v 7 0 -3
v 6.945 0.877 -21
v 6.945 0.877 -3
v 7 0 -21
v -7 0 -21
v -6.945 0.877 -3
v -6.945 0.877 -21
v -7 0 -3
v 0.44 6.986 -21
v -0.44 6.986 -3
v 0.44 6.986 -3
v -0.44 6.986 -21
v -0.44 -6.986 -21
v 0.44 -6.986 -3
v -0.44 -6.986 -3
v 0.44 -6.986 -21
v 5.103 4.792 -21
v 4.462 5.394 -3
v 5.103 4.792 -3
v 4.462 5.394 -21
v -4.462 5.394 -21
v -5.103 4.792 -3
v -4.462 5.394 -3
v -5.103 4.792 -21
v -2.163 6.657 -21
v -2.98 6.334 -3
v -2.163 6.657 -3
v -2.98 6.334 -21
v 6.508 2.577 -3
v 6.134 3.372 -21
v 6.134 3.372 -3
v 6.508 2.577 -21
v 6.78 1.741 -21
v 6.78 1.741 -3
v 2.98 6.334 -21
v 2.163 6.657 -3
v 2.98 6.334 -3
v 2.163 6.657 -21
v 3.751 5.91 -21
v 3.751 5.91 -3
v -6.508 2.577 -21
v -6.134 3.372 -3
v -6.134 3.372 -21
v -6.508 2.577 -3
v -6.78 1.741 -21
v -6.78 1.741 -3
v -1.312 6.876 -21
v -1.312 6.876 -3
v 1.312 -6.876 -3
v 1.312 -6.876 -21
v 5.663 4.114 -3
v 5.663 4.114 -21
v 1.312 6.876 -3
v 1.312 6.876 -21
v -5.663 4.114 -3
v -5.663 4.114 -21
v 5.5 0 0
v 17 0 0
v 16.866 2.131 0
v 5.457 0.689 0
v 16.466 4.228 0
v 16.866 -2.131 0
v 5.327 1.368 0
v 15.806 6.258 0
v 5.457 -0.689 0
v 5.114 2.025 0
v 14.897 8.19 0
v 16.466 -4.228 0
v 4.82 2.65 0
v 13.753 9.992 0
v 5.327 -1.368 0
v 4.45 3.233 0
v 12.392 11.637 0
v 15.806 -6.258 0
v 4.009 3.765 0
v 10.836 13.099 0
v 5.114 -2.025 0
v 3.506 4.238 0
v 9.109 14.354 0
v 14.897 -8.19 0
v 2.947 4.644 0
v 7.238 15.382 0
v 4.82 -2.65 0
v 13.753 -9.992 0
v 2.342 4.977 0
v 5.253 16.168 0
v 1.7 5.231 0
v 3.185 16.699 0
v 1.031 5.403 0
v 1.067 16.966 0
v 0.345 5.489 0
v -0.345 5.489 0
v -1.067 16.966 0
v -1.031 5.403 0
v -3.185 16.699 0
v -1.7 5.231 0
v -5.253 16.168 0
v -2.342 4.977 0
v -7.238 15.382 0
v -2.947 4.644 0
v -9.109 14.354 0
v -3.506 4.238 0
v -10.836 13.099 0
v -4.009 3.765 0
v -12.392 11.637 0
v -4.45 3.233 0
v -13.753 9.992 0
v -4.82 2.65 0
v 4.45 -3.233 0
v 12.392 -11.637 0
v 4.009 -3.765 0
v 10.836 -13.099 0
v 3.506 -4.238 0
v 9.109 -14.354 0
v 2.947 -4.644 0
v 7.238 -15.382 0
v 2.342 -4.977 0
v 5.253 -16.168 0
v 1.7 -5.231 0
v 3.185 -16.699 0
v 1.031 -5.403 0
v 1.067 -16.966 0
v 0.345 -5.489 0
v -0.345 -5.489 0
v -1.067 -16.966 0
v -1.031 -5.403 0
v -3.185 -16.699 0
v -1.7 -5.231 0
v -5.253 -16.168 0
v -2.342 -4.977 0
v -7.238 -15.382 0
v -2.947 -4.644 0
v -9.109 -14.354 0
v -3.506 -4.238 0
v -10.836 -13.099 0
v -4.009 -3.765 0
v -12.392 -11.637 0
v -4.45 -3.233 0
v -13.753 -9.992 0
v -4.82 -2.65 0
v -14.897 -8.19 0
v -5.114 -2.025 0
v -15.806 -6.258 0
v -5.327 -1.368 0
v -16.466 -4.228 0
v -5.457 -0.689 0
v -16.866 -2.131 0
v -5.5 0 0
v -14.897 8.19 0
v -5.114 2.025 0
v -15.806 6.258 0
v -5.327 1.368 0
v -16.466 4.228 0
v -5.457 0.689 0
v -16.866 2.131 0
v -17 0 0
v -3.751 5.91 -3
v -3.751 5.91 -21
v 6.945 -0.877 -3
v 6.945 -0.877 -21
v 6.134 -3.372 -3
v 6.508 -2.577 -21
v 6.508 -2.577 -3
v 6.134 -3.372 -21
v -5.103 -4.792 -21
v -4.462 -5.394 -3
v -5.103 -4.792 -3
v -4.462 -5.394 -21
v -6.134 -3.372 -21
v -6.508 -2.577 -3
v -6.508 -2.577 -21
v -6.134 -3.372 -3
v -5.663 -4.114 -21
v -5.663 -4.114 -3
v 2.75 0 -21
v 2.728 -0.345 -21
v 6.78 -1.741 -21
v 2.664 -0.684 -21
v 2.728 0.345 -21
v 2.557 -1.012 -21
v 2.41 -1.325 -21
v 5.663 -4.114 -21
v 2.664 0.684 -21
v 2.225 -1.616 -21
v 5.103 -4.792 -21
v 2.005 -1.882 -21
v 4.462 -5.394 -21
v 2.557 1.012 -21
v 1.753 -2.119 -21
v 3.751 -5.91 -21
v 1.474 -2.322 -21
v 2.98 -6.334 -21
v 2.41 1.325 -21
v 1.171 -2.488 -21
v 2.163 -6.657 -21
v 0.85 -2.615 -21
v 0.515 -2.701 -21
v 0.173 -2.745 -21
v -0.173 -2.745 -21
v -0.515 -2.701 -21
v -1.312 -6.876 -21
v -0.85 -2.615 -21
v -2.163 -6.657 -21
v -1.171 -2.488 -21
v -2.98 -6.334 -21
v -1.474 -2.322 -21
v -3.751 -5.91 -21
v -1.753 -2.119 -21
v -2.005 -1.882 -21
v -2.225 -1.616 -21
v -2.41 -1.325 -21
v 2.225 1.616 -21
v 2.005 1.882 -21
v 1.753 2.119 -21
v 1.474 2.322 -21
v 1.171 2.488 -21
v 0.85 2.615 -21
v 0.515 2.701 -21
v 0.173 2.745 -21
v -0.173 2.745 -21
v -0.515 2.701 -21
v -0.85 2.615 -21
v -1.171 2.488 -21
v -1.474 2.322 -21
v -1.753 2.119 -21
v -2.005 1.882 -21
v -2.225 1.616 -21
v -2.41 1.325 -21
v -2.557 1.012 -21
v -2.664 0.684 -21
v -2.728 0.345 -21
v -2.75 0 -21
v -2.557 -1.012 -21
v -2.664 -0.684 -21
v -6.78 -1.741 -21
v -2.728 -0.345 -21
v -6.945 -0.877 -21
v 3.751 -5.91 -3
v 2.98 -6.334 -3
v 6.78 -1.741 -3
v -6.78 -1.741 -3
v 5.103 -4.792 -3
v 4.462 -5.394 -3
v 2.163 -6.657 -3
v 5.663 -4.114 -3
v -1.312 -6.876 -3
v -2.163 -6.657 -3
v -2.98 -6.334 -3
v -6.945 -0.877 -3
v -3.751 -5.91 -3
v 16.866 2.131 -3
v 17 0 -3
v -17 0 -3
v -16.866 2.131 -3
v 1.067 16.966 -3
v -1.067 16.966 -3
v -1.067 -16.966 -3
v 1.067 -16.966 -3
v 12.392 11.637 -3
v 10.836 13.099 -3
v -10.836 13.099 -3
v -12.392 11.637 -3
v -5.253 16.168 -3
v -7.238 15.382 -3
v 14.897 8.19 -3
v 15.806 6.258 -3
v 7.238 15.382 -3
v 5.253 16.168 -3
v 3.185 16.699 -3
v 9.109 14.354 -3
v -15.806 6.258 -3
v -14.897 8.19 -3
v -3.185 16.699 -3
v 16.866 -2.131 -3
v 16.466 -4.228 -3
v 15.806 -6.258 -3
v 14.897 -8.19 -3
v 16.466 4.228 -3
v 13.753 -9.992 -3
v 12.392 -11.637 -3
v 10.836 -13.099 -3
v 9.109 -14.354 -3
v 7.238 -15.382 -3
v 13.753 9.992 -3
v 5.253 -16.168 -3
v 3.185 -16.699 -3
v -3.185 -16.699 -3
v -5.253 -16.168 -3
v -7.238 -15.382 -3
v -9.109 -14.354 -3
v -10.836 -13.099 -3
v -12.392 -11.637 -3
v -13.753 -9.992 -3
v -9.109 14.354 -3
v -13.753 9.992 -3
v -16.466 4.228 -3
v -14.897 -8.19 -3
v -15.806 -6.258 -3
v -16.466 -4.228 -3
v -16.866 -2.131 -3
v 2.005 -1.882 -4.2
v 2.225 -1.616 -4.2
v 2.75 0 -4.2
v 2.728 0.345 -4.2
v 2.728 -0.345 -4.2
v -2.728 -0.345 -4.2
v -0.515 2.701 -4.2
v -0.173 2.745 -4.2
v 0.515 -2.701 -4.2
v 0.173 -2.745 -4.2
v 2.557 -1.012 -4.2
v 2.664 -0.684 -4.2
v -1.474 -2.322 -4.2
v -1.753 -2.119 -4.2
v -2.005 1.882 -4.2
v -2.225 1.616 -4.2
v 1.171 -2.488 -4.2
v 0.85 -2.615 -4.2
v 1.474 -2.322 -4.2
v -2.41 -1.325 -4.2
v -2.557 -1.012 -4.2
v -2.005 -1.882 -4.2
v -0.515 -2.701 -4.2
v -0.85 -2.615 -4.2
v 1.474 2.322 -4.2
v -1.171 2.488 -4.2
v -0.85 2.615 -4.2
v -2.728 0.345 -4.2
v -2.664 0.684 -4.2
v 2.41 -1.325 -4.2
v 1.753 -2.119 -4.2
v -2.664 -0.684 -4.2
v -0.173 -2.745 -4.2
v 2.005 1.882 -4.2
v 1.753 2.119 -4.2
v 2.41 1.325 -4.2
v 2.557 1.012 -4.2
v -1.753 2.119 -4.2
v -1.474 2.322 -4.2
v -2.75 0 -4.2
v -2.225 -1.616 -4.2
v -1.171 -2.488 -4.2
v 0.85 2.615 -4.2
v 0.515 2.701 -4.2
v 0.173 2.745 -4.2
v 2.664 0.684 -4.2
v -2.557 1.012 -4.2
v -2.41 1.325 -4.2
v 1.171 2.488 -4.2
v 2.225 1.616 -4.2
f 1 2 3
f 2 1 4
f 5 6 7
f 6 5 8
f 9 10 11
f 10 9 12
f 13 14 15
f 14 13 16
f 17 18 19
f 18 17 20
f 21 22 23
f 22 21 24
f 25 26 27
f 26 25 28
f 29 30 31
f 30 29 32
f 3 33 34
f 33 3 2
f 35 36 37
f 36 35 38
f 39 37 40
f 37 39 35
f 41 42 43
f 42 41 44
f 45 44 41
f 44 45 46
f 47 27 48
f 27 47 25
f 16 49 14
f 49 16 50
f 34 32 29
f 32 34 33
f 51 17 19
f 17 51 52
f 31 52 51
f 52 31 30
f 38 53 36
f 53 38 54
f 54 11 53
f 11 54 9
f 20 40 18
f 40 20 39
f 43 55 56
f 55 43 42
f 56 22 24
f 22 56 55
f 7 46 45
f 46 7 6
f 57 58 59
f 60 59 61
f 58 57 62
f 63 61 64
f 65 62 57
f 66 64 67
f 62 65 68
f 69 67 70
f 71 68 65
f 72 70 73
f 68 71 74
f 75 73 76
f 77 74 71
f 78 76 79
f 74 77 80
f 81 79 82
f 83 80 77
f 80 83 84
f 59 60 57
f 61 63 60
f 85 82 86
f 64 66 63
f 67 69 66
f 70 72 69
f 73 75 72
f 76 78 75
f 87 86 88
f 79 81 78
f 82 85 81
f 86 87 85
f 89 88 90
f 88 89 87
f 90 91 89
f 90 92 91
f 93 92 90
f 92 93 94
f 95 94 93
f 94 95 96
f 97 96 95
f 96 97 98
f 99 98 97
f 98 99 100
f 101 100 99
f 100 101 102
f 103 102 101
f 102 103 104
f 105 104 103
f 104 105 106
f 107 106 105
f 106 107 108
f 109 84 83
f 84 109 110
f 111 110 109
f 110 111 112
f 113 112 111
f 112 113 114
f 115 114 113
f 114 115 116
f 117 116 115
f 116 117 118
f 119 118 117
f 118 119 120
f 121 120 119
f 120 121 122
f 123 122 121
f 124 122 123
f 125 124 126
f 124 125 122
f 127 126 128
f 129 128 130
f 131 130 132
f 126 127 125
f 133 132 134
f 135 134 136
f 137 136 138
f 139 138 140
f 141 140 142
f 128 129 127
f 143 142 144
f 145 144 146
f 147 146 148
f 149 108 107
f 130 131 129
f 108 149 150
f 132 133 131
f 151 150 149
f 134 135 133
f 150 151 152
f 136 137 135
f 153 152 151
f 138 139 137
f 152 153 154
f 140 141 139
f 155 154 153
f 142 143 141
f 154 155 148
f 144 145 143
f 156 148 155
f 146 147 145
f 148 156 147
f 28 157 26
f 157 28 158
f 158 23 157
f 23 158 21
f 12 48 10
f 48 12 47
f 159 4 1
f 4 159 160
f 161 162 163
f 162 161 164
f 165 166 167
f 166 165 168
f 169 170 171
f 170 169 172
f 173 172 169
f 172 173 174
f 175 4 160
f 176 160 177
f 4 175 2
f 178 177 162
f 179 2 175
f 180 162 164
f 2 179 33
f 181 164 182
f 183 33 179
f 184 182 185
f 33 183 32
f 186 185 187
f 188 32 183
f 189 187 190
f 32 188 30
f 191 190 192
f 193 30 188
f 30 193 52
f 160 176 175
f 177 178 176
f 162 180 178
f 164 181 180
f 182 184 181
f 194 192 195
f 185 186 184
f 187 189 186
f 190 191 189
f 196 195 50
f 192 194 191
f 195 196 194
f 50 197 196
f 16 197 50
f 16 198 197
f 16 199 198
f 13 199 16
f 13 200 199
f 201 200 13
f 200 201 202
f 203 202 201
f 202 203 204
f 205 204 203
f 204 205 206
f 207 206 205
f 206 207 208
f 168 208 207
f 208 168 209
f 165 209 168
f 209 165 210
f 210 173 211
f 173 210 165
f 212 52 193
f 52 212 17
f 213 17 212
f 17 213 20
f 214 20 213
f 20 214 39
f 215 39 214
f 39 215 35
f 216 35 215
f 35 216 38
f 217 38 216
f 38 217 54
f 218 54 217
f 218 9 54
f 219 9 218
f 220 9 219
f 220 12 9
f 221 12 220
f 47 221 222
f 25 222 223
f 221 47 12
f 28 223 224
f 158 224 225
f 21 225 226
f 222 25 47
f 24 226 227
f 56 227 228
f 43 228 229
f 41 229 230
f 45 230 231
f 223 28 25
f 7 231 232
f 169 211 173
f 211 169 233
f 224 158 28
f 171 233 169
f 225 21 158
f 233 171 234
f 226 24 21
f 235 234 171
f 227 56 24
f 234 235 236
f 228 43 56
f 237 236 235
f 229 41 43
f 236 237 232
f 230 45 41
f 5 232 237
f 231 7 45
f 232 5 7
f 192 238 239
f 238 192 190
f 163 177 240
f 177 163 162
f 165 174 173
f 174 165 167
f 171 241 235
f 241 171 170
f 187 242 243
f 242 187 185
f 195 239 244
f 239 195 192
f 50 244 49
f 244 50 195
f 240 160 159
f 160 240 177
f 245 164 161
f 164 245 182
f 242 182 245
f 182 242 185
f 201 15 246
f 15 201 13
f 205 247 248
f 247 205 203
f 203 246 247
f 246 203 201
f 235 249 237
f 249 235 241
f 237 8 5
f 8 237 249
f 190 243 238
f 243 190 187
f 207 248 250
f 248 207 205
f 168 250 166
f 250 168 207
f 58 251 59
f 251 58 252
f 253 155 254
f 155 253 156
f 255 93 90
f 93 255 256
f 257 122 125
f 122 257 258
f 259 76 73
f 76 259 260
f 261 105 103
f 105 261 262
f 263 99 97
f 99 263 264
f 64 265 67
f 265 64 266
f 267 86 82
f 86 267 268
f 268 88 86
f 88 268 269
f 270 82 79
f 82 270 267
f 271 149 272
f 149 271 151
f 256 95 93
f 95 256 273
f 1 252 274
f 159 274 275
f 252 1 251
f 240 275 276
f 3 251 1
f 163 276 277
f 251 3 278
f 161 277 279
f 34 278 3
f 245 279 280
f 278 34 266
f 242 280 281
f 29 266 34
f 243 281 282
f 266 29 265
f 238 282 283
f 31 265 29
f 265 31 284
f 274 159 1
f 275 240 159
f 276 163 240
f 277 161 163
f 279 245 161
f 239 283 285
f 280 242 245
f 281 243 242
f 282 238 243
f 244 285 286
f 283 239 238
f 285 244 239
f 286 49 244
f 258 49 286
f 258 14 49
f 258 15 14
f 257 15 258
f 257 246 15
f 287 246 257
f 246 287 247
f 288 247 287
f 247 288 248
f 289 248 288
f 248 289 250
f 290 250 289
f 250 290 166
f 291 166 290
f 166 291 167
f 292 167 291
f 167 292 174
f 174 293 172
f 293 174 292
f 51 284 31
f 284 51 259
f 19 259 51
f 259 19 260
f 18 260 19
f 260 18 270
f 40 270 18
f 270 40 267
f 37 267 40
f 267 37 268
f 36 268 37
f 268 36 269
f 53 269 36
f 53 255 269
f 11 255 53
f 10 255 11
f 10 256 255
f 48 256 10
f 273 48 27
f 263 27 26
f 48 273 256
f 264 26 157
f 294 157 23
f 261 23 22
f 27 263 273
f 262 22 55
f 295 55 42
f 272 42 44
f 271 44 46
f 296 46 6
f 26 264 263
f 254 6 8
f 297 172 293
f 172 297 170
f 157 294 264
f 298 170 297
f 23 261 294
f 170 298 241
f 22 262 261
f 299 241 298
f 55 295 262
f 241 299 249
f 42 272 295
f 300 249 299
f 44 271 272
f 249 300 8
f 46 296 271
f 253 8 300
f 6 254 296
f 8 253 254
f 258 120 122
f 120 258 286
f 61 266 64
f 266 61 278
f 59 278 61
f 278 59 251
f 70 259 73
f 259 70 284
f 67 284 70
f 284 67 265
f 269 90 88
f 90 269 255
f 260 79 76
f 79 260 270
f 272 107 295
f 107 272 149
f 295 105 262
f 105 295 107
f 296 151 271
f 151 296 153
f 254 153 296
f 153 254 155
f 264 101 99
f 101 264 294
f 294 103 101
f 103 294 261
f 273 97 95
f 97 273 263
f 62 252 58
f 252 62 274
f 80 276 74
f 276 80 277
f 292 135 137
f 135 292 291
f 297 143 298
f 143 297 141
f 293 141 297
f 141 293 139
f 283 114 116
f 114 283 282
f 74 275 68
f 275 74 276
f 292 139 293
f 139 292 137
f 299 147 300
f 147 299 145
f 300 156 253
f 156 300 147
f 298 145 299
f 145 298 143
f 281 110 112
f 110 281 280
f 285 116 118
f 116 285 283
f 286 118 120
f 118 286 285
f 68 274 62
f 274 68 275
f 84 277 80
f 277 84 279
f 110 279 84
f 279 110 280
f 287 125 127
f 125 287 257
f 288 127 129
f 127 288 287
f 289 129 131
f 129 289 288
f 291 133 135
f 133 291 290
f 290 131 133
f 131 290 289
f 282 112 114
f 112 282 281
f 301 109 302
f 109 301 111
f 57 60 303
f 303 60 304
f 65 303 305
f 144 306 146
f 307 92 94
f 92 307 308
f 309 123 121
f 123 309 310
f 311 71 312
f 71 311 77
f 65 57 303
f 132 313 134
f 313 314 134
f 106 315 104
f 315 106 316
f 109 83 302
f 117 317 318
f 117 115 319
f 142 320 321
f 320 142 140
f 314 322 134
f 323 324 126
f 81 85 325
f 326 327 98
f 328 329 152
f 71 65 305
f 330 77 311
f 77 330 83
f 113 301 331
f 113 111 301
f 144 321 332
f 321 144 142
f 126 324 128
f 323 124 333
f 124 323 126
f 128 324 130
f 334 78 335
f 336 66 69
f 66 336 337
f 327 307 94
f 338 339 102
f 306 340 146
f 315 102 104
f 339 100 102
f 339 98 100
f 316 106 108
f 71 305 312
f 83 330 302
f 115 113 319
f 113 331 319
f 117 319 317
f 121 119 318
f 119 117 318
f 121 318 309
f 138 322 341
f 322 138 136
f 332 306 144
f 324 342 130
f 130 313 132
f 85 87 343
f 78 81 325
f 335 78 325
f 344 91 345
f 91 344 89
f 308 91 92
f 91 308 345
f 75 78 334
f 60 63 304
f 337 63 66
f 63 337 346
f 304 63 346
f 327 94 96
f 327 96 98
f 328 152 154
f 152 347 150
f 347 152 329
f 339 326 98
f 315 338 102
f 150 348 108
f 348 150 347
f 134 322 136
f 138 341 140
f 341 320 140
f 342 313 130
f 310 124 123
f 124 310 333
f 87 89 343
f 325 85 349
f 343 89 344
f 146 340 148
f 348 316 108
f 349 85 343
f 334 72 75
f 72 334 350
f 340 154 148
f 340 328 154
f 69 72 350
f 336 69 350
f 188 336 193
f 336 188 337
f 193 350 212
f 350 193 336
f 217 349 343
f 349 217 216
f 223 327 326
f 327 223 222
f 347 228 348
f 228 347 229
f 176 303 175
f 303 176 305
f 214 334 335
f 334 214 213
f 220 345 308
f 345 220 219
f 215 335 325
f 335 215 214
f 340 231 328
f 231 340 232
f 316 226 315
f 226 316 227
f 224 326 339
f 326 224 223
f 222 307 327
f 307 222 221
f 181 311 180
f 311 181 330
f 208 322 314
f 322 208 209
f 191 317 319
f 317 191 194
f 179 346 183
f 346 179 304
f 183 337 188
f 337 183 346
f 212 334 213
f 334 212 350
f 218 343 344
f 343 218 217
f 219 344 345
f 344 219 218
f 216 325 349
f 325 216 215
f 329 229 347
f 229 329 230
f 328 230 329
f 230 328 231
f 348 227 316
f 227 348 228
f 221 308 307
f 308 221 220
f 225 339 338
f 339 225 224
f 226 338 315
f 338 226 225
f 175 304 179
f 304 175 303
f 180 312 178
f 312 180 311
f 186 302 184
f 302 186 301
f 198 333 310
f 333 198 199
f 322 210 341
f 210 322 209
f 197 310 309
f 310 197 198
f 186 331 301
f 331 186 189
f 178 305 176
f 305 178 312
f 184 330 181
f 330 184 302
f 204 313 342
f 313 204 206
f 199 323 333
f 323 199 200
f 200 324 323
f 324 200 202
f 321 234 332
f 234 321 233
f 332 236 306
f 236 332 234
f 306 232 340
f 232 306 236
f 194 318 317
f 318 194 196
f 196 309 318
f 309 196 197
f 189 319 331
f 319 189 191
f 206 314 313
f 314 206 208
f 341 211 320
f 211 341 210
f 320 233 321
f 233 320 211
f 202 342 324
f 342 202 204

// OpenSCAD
$fn = 50;


difference() {
	union() {
		translate(v = [0, 0, -21.0000000000]) {
			cylinder(h = 21, r = 7.0000000000);
		}
		translate(v = [0, 0, -3.0000000000]) {
			cylinder(h = 3, r = 17.0000000000);
		}
	}
	union() {
		translate(v = [0, 0, 0]) {
			rotate(a = [0, 0, 0]) {
				difference() {
					union() {
						#translate(v = [0, 0, -21.0000000000]) {
							cylinder(h = 21, r = 2.2500000000);
						}
						#translate(v = [0, 0, -4.2000000000]) {
							cylinder(h = 4.2000000000, r1 = 2.7500000000, r2 = 5.5000000000);
						}
						#translate(v = [0, 0, -21.0000000000]) {
							cylinder(h = 21, r = 2.7500000000);
						}
						#translate(v = [0, 0, -21.0000000000]) {
							cylinder(h = 21, r = 2.2500000000);
						}
					}
					union();
				}
			}
		}
	}
}
